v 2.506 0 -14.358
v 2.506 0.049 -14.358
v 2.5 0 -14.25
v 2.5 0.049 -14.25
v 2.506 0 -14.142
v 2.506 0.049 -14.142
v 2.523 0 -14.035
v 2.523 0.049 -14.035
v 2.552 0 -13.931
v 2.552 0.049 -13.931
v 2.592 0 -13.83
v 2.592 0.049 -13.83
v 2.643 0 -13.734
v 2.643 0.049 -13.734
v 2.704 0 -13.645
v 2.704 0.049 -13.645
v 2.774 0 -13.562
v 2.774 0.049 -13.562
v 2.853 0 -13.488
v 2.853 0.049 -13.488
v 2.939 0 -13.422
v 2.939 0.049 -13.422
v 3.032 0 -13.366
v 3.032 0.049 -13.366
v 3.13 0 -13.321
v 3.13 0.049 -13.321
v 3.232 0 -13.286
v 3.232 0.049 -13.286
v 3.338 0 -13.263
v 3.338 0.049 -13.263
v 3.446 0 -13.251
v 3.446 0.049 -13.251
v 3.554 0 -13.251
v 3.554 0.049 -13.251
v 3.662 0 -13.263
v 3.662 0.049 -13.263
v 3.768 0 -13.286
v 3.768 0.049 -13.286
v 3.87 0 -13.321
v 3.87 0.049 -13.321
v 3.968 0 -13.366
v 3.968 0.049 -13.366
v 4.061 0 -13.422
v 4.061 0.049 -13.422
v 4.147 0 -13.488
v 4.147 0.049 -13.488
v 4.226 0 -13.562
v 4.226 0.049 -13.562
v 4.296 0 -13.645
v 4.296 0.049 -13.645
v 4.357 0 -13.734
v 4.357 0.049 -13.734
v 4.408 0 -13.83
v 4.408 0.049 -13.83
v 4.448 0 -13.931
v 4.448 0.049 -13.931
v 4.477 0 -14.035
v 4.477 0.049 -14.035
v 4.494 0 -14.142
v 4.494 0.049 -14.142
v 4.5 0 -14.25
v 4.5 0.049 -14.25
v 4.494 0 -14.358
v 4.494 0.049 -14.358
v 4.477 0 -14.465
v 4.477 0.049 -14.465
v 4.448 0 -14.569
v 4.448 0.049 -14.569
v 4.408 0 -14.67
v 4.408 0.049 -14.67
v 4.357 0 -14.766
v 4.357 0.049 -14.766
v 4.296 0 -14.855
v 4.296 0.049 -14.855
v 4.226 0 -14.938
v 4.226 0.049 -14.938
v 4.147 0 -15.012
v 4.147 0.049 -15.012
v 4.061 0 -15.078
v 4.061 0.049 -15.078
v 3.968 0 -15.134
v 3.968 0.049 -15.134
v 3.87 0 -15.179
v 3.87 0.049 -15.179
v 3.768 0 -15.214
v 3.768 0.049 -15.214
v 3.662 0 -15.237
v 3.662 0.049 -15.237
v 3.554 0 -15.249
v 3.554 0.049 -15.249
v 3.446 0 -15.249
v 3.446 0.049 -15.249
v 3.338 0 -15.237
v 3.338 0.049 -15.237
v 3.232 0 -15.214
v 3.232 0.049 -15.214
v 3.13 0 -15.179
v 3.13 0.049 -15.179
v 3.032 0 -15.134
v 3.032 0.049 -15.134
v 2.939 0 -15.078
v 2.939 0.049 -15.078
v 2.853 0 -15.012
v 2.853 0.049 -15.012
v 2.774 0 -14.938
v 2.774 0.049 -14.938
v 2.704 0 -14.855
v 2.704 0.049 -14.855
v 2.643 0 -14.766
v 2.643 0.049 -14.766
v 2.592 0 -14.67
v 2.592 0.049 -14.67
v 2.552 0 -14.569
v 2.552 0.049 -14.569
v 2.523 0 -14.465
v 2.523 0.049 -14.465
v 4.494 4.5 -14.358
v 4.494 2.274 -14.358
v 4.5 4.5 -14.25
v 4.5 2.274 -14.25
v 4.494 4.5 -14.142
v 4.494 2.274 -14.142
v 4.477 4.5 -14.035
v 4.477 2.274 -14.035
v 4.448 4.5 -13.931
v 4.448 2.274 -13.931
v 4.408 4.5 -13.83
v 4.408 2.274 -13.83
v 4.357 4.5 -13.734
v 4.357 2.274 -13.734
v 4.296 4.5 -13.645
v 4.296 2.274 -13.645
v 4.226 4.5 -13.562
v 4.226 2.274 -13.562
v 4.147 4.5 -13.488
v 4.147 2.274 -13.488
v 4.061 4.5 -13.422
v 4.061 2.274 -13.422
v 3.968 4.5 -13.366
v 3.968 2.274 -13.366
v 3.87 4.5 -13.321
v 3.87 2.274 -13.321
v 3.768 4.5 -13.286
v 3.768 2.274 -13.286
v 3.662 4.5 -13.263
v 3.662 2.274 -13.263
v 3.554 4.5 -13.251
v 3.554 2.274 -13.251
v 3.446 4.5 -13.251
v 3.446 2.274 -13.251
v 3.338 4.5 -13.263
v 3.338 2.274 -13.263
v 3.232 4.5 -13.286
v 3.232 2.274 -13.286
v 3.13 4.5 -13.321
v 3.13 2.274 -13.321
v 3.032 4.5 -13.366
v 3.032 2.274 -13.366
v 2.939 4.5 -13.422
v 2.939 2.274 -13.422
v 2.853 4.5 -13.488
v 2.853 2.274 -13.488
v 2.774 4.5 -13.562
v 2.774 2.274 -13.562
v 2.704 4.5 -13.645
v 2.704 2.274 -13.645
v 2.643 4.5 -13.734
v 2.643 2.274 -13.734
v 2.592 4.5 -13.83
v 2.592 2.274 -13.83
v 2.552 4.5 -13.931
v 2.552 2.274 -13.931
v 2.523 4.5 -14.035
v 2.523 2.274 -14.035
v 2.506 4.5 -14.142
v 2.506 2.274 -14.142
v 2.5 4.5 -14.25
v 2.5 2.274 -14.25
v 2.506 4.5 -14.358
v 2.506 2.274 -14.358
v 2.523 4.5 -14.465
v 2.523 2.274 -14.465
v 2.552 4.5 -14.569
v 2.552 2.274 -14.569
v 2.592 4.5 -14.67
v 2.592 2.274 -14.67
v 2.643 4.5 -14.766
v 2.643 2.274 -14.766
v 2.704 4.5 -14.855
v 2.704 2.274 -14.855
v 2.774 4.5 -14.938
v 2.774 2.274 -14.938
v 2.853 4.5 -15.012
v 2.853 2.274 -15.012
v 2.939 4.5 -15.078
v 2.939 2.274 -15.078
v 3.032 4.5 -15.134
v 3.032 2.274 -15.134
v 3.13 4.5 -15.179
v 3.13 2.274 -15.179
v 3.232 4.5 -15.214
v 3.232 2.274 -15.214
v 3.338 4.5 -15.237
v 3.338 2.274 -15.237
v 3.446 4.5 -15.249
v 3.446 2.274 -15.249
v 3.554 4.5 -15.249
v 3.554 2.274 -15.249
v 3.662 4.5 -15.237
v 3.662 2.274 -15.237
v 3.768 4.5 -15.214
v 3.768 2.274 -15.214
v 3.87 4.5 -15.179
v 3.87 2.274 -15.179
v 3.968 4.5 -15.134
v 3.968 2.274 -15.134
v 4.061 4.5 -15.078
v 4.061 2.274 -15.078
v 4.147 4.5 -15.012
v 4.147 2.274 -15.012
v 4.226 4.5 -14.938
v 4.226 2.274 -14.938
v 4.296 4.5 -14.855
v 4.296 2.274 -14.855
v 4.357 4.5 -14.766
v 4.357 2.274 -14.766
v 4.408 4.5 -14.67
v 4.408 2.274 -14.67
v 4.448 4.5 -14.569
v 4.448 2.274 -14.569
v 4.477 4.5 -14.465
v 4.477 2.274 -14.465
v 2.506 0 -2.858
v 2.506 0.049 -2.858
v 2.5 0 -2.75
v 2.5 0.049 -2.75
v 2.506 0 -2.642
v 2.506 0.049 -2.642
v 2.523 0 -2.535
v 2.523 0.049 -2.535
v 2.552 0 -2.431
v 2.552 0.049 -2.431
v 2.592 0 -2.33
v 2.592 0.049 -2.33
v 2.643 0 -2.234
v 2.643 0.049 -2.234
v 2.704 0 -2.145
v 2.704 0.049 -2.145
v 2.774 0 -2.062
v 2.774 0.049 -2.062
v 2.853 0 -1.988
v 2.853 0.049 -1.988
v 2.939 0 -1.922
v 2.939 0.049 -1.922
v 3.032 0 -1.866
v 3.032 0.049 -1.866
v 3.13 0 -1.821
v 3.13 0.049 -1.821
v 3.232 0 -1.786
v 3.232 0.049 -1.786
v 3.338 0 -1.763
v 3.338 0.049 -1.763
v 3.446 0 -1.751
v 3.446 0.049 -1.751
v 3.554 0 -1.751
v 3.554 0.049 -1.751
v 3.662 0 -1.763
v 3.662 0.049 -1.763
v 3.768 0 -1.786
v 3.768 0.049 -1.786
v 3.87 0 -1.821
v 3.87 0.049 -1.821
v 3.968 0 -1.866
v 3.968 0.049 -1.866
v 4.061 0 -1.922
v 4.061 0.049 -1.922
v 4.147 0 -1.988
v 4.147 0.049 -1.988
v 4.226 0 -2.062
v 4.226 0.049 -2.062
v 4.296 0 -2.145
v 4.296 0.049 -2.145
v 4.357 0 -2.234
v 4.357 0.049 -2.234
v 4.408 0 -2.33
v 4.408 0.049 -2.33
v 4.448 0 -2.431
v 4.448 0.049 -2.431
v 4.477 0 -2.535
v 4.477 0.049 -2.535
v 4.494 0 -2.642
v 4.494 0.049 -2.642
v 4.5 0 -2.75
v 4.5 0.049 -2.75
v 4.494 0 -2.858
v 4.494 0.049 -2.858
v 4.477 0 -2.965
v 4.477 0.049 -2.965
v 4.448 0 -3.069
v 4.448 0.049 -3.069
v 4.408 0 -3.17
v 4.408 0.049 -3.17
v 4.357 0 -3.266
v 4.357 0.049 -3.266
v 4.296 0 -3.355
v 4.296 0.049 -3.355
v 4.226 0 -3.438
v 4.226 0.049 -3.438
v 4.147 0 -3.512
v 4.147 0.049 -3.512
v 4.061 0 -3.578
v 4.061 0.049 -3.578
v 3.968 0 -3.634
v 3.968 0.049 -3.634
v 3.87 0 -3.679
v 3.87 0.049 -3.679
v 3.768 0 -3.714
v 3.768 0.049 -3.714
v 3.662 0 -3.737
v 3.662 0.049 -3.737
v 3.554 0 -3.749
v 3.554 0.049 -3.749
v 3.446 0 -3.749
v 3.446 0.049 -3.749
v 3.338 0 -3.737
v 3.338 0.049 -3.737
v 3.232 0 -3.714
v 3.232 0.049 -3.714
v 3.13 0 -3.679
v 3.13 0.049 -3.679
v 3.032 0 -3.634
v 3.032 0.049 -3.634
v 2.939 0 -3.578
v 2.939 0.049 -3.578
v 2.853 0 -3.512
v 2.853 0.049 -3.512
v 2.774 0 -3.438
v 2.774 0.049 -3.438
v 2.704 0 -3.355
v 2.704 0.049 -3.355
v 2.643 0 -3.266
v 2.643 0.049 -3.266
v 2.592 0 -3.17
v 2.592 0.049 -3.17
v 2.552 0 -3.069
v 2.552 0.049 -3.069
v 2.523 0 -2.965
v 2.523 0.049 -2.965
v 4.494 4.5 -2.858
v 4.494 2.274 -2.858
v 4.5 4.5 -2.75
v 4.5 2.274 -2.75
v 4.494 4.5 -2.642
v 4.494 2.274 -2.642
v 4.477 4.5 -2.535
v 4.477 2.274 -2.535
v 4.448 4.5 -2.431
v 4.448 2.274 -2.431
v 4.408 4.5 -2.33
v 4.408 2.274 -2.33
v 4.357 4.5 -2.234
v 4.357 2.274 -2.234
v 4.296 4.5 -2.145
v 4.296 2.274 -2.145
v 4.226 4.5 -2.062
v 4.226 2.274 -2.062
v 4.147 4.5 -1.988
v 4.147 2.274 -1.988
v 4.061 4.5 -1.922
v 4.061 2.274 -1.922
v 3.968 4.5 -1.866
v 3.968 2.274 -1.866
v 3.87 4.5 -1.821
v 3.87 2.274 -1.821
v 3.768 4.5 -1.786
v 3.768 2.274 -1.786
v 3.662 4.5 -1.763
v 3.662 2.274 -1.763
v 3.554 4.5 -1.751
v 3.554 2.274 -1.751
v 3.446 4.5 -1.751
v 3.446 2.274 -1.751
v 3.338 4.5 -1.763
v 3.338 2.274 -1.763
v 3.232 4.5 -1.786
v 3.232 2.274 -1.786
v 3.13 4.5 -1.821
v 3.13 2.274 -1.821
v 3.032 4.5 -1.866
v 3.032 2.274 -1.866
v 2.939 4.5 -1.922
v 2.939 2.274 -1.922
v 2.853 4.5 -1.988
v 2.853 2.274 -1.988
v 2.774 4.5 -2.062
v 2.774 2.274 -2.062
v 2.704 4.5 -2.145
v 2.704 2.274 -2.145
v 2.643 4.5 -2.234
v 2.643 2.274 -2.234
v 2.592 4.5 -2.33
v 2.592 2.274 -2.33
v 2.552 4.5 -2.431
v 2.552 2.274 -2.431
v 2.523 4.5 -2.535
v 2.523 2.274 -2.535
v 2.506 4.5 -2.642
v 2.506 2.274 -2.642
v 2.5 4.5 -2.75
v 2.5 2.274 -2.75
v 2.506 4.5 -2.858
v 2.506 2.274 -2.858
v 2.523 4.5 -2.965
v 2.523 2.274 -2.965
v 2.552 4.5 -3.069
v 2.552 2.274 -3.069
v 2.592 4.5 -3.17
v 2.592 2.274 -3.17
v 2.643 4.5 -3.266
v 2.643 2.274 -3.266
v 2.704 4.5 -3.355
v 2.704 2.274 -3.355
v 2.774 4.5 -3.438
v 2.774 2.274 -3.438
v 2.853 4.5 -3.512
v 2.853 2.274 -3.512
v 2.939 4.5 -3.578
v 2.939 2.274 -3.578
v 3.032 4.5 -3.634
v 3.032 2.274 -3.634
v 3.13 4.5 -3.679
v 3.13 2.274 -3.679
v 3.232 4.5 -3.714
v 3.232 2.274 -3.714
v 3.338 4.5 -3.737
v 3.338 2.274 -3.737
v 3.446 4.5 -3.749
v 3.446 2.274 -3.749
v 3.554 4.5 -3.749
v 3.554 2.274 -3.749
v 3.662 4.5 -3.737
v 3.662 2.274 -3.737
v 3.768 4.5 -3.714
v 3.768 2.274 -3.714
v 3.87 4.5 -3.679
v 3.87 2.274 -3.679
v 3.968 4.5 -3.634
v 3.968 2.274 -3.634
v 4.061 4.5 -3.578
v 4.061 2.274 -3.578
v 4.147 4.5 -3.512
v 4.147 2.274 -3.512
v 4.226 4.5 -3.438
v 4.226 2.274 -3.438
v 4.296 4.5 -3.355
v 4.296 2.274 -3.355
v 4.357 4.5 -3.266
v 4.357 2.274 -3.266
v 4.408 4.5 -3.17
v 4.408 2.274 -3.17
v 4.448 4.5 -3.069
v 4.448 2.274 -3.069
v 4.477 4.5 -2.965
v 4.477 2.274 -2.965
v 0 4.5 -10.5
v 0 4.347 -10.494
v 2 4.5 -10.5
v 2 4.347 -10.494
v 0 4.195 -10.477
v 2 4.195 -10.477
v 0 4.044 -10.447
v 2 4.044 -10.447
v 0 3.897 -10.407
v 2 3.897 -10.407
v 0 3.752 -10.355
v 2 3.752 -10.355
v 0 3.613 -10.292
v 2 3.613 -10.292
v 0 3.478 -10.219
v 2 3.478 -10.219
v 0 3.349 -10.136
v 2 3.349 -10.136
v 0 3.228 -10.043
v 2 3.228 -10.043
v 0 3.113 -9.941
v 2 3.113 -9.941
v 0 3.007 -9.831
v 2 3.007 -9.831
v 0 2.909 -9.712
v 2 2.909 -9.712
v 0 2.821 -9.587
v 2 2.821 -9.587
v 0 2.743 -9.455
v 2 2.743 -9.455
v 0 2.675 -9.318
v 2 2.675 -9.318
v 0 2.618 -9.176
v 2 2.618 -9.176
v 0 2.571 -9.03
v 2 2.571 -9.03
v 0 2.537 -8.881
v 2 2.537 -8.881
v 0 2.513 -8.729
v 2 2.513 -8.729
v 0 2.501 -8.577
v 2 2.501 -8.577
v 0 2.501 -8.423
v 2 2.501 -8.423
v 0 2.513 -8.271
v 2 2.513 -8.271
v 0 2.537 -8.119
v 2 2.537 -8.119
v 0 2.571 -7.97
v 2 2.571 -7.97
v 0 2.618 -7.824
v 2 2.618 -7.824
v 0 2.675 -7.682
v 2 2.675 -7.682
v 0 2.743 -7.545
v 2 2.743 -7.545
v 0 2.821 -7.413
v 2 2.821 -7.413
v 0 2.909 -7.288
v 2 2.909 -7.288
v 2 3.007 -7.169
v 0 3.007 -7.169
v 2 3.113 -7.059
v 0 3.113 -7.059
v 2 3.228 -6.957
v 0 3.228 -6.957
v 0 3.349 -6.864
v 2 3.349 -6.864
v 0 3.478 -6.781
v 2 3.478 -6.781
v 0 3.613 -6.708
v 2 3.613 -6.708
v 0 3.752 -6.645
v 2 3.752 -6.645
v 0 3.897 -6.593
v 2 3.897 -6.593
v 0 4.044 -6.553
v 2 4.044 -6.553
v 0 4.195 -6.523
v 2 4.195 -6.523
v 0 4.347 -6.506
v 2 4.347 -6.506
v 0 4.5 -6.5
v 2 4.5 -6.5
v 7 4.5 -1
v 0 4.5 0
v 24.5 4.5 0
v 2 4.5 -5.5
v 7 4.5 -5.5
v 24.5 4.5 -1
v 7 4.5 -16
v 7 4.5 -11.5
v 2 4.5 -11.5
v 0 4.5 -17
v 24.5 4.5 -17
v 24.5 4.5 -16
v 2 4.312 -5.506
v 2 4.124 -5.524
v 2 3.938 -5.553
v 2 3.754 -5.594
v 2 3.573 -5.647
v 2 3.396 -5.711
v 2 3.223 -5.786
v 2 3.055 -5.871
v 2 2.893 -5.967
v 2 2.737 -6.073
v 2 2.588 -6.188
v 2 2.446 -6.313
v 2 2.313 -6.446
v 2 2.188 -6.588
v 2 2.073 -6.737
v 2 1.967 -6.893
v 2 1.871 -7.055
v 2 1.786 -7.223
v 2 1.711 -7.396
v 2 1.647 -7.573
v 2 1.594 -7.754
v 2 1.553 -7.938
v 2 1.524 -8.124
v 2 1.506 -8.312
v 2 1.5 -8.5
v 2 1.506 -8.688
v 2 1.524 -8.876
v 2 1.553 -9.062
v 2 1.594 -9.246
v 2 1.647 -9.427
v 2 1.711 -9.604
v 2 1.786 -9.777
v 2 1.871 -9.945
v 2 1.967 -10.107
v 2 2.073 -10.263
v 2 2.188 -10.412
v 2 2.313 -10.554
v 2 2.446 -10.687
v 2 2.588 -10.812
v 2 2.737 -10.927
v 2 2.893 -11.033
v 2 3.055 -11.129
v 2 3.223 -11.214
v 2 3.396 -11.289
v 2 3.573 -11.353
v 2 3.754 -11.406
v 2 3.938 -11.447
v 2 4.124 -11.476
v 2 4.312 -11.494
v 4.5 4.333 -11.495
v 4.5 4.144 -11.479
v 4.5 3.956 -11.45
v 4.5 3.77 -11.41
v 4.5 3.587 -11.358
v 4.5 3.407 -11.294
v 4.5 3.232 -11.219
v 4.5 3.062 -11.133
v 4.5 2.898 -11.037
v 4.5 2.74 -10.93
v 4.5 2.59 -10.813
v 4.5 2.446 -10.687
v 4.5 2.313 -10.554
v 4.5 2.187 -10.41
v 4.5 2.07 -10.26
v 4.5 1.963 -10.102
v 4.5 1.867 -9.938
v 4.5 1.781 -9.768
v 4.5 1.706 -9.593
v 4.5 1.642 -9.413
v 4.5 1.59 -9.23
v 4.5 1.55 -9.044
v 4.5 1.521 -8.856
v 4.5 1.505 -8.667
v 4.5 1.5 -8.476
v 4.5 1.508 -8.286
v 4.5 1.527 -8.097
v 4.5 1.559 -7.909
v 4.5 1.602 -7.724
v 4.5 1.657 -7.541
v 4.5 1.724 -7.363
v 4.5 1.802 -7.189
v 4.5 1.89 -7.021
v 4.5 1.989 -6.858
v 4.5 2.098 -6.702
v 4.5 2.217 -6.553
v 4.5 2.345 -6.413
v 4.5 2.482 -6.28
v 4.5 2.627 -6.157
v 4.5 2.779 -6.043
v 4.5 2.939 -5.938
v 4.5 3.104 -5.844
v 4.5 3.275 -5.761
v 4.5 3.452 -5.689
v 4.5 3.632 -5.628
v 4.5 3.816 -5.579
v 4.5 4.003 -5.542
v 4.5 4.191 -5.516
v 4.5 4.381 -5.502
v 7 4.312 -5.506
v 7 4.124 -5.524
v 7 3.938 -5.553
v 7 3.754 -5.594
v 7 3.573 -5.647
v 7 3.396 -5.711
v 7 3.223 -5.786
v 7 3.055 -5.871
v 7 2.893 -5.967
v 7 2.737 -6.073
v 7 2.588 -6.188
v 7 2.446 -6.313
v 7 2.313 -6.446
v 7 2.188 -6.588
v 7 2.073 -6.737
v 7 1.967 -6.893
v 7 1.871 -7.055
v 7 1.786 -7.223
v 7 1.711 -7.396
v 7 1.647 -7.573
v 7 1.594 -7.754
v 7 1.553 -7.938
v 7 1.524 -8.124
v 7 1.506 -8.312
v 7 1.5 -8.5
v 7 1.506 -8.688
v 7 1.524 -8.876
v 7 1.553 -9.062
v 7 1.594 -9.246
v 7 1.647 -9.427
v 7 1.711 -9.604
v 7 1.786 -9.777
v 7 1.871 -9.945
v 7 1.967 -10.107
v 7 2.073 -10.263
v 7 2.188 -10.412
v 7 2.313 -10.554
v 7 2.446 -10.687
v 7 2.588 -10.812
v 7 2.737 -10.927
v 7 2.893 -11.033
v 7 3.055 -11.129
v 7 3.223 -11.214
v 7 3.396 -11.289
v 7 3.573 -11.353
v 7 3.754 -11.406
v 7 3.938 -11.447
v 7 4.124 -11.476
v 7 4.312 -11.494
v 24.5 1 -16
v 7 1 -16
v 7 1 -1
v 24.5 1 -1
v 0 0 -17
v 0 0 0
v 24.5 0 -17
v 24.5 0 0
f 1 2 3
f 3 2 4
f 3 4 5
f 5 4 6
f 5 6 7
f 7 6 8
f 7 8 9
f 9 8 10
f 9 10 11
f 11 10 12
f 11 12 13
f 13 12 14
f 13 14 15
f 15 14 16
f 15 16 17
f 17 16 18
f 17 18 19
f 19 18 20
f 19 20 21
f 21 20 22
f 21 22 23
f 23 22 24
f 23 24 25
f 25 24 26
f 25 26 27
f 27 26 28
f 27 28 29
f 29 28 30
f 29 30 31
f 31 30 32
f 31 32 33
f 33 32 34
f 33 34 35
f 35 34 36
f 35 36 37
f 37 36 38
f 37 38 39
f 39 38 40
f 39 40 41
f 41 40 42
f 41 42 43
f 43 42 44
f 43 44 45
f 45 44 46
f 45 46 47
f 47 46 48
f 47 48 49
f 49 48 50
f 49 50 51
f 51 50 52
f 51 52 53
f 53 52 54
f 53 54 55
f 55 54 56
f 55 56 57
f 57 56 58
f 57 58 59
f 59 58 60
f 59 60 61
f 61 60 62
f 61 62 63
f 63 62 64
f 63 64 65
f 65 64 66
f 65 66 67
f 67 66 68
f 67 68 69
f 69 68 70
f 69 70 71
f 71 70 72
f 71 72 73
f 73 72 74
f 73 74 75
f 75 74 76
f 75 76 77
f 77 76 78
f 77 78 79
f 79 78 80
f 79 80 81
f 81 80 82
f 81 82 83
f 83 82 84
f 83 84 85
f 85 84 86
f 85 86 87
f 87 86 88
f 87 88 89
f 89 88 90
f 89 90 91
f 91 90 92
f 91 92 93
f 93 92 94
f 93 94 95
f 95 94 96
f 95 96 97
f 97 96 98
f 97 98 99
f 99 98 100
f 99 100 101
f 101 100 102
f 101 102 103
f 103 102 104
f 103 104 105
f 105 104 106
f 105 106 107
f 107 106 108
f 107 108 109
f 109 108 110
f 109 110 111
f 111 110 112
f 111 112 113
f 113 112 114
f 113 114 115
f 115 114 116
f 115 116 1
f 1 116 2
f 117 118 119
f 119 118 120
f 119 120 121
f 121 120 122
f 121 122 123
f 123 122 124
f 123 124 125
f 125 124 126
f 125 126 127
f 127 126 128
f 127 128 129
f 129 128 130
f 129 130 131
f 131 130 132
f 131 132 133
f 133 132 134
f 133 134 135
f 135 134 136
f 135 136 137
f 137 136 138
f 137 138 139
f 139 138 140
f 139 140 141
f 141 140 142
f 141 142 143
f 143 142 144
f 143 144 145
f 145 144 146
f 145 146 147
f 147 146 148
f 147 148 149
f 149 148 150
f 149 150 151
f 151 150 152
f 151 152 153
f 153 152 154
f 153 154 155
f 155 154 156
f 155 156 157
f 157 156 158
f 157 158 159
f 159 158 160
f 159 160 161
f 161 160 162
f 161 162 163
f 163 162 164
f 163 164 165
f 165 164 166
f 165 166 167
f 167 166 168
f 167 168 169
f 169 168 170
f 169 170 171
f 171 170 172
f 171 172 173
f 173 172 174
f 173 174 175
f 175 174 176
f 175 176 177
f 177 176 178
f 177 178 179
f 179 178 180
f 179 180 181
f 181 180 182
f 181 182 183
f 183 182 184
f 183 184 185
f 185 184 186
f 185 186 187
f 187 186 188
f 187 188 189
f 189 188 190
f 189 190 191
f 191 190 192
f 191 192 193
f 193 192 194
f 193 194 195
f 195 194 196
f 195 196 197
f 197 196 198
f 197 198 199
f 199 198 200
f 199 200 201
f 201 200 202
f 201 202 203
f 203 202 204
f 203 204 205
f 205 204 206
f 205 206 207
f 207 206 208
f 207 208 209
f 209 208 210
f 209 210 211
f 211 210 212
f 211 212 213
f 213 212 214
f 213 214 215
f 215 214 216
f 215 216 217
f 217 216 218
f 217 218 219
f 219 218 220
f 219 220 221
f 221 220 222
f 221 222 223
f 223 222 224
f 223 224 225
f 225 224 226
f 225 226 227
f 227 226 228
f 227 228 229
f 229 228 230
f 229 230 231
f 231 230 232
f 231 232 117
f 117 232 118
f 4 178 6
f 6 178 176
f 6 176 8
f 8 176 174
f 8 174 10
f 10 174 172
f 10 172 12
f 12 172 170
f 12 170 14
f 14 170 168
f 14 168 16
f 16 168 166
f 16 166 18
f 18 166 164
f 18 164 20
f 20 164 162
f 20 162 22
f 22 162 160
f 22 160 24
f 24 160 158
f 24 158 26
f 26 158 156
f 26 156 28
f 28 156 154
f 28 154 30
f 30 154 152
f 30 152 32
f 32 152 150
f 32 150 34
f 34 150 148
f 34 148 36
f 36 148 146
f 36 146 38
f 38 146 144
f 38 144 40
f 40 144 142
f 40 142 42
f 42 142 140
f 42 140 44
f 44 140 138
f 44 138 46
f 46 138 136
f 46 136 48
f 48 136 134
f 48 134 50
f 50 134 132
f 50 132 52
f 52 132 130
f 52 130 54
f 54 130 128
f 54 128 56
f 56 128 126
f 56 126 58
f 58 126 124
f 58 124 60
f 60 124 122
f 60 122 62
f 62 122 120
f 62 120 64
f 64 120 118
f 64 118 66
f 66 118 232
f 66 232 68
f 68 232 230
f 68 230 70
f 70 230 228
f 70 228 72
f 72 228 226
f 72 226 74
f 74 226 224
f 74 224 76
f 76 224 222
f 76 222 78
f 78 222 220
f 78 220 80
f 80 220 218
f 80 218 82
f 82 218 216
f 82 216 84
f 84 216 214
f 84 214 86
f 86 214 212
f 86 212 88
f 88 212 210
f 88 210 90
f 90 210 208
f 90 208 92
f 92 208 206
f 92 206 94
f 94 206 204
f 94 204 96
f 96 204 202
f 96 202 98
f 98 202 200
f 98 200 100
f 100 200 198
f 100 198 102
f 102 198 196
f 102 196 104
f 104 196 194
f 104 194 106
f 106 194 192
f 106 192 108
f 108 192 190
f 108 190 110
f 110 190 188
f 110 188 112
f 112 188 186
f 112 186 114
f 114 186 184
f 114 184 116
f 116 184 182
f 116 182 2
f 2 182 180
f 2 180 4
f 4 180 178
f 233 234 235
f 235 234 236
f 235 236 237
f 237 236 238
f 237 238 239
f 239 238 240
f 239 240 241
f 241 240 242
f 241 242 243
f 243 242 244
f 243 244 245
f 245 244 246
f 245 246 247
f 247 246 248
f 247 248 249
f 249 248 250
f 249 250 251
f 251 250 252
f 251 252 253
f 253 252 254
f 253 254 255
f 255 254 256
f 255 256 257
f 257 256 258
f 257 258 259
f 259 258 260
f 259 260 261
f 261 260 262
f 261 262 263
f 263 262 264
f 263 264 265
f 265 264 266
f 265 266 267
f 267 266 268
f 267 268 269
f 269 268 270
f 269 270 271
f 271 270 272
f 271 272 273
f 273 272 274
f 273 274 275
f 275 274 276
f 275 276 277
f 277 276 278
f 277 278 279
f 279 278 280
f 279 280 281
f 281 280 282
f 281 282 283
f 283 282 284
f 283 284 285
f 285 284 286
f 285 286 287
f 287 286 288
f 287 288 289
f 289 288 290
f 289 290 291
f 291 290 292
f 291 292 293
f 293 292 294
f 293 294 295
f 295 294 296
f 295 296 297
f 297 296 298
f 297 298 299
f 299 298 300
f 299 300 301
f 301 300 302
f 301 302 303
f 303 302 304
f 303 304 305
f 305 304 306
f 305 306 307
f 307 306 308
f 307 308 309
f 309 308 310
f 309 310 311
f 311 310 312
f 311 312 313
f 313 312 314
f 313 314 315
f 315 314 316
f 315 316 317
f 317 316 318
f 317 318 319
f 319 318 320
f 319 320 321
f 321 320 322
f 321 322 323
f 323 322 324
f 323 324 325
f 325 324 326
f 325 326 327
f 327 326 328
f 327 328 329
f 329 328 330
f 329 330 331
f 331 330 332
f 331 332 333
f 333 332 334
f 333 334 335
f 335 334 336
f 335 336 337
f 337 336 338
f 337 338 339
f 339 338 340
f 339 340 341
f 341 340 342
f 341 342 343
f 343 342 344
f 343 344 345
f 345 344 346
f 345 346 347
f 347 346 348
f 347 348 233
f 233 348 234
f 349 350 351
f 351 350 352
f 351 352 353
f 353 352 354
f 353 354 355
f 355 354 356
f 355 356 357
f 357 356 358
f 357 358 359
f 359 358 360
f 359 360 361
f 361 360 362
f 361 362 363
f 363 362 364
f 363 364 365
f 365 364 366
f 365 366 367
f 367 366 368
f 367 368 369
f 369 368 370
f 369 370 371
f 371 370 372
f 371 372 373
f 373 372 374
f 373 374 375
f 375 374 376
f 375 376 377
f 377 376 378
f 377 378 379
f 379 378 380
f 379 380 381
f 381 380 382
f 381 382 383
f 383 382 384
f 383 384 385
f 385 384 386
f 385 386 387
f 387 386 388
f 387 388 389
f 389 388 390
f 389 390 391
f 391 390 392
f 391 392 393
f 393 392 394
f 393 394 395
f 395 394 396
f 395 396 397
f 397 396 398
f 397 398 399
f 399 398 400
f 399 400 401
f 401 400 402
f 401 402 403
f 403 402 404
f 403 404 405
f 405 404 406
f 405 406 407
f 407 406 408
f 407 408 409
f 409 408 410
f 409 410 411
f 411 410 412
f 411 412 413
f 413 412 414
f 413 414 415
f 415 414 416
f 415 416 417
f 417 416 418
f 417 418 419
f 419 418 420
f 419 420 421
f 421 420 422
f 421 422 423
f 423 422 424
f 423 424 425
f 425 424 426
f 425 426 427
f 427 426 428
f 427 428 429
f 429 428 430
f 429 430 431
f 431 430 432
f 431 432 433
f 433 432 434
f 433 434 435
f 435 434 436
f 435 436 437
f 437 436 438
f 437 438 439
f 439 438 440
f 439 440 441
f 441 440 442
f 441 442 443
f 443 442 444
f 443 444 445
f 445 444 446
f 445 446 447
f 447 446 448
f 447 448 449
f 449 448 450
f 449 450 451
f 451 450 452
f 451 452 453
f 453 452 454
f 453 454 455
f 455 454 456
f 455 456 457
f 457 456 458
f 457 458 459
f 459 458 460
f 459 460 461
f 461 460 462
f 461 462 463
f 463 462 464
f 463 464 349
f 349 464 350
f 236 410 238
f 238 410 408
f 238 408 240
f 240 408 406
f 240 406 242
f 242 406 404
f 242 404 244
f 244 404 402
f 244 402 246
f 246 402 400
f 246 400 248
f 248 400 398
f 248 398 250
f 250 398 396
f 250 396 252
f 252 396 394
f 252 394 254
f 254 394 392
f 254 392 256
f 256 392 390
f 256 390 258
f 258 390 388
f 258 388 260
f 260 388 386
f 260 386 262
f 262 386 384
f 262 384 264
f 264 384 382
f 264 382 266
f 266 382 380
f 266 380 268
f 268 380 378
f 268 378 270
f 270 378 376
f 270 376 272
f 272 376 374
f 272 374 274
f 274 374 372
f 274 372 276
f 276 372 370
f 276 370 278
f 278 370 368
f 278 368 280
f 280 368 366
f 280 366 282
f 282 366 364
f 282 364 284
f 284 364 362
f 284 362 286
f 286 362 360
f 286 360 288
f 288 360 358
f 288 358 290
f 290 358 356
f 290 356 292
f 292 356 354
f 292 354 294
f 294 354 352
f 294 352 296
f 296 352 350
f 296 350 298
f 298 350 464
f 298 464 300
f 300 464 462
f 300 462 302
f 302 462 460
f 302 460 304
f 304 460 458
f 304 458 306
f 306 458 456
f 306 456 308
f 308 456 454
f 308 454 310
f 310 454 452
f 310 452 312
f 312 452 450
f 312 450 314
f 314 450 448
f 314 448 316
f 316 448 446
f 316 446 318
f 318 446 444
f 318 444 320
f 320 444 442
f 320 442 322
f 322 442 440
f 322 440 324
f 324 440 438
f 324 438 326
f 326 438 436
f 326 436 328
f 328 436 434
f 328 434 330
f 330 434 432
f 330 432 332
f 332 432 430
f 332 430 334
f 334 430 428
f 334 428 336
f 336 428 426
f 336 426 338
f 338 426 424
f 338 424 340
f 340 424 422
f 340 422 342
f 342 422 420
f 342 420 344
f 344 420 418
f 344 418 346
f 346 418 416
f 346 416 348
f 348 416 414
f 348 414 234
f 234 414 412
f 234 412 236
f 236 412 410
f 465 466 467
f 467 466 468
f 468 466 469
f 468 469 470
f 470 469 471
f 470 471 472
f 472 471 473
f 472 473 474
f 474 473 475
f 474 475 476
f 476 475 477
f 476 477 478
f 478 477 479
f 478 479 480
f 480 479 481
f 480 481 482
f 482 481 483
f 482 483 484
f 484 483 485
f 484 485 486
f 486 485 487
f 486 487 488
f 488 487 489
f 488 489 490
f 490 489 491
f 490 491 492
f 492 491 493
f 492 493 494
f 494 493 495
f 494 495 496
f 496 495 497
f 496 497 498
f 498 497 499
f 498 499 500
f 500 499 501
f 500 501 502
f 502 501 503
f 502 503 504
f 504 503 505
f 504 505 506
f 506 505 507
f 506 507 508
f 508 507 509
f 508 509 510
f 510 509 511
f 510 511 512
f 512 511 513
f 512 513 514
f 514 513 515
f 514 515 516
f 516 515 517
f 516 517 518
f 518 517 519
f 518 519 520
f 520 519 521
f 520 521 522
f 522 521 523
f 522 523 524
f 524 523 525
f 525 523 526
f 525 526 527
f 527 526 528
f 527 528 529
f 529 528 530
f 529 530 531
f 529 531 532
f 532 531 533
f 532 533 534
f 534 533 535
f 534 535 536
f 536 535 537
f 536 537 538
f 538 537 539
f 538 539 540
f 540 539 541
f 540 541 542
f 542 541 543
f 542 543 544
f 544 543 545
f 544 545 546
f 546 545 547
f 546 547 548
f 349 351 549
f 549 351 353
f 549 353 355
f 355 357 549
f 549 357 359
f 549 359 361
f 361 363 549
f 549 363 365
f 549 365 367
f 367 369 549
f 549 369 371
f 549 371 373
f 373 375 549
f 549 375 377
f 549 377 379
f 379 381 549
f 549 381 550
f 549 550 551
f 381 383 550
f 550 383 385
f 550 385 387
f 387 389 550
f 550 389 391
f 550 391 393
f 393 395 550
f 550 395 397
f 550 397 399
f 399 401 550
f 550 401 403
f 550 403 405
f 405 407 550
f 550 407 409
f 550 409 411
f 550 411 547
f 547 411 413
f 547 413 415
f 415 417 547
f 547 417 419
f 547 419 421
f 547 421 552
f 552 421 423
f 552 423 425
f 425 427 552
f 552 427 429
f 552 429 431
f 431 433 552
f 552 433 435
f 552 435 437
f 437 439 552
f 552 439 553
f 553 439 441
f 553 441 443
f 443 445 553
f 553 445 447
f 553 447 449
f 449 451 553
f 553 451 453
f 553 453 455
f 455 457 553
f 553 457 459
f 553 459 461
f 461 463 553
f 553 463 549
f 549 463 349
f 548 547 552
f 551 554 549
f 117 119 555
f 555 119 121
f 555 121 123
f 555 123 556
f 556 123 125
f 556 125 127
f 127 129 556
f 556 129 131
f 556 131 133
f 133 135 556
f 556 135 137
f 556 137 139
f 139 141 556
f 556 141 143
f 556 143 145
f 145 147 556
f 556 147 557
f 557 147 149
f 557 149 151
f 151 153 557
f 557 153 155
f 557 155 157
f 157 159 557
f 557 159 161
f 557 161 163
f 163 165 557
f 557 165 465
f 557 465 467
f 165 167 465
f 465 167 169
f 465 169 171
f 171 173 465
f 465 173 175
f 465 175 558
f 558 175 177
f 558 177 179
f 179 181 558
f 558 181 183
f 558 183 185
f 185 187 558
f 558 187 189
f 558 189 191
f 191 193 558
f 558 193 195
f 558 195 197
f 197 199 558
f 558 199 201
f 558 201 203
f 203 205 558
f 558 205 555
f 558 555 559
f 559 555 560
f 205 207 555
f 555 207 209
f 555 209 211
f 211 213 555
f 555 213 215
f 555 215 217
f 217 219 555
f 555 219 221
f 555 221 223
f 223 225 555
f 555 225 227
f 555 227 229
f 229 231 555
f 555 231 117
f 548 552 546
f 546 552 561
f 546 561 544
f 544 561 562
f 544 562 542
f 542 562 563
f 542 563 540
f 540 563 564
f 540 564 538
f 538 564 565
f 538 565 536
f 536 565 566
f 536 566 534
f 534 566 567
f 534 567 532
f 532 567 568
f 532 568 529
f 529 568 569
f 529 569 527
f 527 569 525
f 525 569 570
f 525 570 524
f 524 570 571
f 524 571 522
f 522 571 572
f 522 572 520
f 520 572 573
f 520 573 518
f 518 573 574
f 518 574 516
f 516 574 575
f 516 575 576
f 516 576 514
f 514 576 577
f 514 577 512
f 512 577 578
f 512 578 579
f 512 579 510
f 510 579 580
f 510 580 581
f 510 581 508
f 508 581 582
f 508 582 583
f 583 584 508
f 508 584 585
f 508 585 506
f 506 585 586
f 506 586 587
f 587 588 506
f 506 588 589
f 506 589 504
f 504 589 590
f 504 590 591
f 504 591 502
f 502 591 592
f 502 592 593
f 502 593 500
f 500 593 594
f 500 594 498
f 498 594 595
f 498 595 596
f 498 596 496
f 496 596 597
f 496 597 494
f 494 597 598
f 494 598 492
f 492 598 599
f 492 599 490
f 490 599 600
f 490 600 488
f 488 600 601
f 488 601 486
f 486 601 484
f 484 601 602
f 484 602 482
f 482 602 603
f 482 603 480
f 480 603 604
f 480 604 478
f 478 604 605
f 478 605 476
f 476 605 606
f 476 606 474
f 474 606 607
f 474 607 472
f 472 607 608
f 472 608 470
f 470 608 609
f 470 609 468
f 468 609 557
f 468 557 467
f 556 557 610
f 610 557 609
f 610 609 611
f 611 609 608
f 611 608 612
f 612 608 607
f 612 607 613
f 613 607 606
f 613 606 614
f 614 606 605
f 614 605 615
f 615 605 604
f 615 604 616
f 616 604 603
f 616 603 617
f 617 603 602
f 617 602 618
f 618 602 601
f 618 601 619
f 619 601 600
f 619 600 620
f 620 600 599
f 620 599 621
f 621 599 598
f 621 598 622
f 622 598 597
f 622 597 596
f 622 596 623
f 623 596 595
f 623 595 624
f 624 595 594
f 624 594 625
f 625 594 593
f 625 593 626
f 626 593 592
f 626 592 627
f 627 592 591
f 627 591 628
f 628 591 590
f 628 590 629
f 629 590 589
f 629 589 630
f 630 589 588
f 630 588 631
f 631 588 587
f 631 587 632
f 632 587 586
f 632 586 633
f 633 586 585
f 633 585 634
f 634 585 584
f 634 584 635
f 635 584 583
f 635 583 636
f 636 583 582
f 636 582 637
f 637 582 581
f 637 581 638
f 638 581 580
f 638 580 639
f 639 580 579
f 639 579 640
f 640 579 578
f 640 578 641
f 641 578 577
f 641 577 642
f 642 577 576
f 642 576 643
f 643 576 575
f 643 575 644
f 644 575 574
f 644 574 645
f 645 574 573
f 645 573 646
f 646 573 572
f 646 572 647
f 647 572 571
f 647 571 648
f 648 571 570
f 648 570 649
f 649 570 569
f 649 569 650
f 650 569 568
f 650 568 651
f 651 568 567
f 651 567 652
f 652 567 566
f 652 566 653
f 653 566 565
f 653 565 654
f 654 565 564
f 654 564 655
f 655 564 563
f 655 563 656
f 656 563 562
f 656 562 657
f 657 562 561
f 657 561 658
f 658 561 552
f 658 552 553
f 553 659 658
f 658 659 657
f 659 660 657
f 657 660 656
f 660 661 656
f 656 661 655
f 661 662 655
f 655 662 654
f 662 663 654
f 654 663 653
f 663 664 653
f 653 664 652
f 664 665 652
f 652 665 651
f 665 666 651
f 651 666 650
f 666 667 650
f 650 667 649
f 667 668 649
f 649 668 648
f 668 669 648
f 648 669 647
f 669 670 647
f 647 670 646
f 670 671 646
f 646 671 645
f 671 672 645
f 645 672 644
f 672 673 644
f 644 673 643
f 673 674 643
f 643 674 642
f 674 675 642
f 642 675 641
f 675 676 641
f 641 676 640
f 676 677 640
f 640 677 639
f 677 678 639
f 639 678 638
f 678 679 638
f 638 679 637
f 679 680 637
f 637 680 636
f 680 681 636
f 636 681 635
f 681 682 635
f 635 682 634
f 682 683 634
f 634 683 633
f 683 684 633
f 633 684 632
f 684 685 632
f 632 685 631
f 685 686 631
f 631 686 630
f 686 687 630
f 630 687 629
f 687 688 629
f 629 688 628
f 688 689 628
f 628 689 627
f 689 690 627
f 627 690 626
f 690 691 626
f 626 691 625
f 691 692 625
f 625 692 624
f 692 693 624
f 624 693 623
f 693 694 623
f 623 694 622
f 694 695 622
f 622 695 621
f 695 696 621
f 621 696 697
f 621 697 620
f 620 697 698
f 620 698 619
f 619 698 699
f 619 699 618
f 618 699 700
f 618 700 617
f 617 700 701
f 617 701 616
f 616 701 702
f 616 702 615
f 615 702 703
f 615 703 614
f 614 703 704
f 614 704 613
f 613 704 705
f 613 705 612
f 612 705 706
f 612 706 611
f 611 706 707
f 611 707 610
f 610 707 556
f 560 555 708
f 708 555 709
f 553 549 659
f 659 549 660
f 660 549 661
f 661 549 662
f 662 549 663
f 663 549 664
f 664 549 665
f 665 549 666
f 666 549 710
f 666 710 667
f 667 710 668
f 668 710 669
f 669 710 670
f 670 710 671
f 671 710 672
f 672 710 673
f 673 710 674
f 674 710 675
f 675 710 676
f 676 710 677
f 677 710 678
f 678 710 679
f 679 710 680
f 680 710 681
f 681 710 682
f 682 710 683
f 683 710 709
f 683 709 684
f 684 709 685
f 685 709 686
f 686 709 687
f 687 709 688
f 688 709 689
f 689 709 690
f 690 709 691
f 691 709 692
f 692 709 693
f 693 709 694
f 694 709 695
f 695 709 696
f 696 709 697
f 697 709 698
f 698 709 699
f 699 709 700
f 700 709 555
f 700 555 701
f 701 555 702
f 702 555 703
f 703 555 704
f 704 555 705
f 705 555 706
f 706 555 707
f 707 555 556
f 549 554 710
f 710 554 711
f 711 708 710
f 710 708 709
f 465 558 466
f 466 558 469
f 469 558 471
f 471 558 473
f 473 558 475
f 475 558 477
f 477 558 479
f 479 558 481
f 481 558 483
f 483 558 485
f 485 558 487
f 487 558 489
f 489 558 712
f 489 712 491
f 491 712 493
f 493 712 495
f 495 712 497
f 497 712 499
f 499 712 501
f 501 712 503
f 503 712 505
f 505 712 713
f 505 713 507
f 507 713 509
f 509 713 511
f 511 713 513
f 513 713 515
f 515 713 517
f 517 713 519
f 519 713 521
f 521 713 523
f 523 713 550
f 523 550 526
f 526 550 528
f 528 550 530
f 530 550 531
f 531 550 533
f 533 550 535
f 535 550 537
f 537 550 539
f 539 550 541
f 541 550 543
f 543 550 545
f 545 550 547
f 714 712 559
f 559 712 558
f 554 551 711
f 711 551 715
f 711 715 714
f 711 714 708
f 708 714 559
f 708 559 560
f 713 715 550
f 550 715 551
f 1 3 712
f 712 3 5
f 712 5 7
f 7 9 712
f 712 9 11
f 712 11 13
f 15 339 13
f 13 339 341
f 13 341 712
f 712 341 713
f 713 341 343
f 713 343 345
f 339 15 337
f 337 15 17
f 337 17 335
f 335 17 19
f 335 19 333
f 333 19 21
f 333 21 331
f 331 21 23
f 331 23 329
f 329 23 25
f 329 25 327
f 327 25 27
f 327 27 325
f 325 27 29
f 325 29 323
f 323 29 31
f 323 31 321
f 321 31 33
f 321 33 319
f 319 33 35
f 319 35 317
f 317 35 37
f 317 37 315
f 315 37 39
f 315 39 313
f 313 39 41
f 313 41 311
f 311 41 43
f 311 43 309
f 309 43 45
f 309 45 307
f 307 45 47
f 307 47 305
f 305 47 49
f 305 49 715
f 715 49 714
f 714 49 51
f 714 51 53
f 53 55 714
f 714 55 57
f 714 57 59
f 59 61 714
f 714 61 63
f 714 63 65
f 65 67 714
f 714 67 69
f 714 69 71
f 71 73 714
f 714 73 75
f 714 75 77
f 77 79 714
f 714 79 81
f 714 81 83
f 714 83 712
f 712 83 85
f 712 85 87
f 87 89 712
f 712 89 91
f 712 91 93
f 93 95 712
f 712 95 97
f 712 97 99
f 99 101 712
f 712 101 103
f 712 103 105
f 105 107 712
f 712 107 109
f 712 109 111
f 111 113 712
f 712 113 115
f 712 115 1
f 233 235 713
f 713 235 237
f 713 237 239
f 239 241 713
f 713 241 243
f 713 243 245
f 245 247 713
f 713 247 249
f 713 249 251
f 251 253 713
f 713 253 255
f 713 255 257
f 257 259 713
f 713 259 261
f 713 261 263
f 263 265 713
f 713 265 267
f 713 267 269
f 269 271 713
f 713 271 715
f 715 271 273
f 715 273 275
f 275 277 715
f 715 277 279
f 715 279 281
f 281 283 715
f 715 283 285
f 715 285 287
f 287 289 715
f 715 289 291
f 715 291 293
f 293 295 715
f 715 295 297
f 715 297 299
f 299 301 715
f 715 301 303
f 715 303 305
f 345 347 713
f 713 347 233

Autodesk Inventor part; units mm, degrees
ref_plane "YZ Plane" through (0, 0, 0) normal (1, 0, 0) x (0, 1, 0)
ref_plane "XZ Plane" through (0, 0, 0) normal (0, 1, 0) x (-1, 0, 0)
ref_plane "XY Plane" through (0, 0, 0) normal (0, 0, 1) x (1, 0, 0)
sketch "Эскиз24" plane through (0, 0, 0) normal (0, 1, 0) x (1, 0, 0)
  line L0 (0, 0) -> (24.5, 0)
  line L1 (24.5, 0) -> (24.5, 17)
  line L2 (24.5, 17) -> (0, 17)
  line L3 (0, 17) -> (0, 0)
  dimension "d124" = 24.5
  dimension "d125" = 17
extrude "Выдавливание17" add sketch "Эскиз24" along normal blind 4.5
sketch "Эскиз25" plane through (0, 4.5, 0) normal (0, 1, 0) x (1, 0, 0)
  line L0 (24.5, 1) -> (7, 1)
  line L1 (7, 1) -> (7, 16)
  line L2 (7, 16) -> (24.5, 16)
  line L3 (24.5, 16) -> (24.5, 1)
  line L4 (24.5, 0) -> (24.5, 17) projected
  line L5 (0, 17) -> (0, 0) projected
  point P0 (24.5, 8.5)
  dimension "d128" = 15
  dimension "d129" = 17.5
extrude "Выдавливание18" cut sketch "Эскиз25" against normal blind 3.5
sketch "Эскиз26" plane through (0, 4.5, 0) normal (0, 1, 0) x (1, 0, 0)
  line L0 (7, 1) -> (7, 16) projected
  line L1 (2, 5.5) -> (7, 5.5)
  line L2 (7, 5.5) -> (7, 11.5)
  line L3 (7, 11.5) -> (2, 11.5)
  line L4 (2, 11.5) -> (2, 5.5)
  line L5 (7, 1) -> (7, 16) projected
  point P0 (0, 0)
  point P1 (7, 8.5)
  dimension "d133" = 5
  dimension "d134" = 6
extrude "Выдавливание19" cut sketch "Эскиз26" against normal blind 3
fillet "Сопряжение8" radius 3 2 edges at (4.5, 1.5, -11.5) (4.5, 1.5, -5.5)
sketch "Эскиз27" plane through (0, 4.5, 0) normal (0, 1, 0) x (1, 0, 0)
  line L0 (0, 6.5) -> (2, 6.5)
  line L1 (2, 6.5) -> (2, 10.5)
  line L2 (2, 10.5) -> (0, 10.5)
  line L3 (0, 10.5) -> (0, 6.5)
  line L4 (2, 5.5) -> (2, 11.5) projected
  line L5 (0, 17) -> (0, 0) projected
  point P0 (2, 8.5)
  dimension "d138" = 4
extrude "Выдавливание20" cut sketch "Эскиз27" against normal blind 2
fillet "Сопряжение9" radius 2 2 edges at (1, 2.5, -10.5) (1, 2.5, -6.5)
sketch "Эскиз28" plane through (0, 4.5, 0) normal (0, 1, 0) x (1, 0, 0)
  line L0 (2, 11.5) -> (7, 11.5) projected
  line L1 (0, 17) -> (0, 0) projected
  line L2 (7, 11.5) -> (0, 11.5)
  line L3 (0, 11.5) -> (0, 17)
  line L4 (0, 17) -> (7, 17)
  line L5 (7, 17) -> (7, 11.5)
  line L6 (7, 5.5) -> (2, 5.5) projected
  line L7 (7, 5.5) -> (0, 5.5)
  line L8 (0, 5.5) -> (0, 0)
  line L9 (0, 0) -> (7, 0)
  line L10 (7, 0) -> (7, 5.5)
  line L11 (24.5, 17) -> (0, 17) construction
  line L12 (0, 17) -> (7, 11.5) construction
  line L13 (0, 0) -> (7, 5.5) construction
  point P0 (3.5, 14.25)
  point P1 (3.5, 2.75)
hole "Отверстие6" at (3.5, 4.5, -14.25) at (3.5, 4.5, -2.75) direction (0, -1, 0) diameter 2 depth 4.5
sketch "Эскиз21" plane through (20, 0, 0.1742) normal (1, 0, 0) x (0, 0, -1)
  line L0 (0.1742, 0) -> (-5.0258, 0) projected
  line L1 (0.1742, 0) -> (0.1742, 25) projected
  line L2 (-5.0258, 0) -> (-8.7758, -17.85)
  line L3 (0.1742, 0) -> (-3.5758, -17.85)
  line L4 (-8.7758, -17.85) -> (-3.5758, -17.85)
  dimension "d103" = 17.85
  dimension "d104" = 8.95
sketch "Эскиз22" plane through (20, -17.85, 3.75) normal (0, -1, 0) x (1, 0, 0)
  line L0 (0, 0) -> (-9.1, 0)
  line L1 (-9.1, 0) -> (-9.1, 17.3)
  line L2 (-9.1, 17.3) -> (0, 17.3)
  line L3 (0, 17.3) -> (0, 0)
  line L4 (0, 5.2) -> (-9.1, 5.2) projected
  line L5 (0, 0) -> (-9.1, 0) projected
  line L6 (0, 5.2) -> (0, 0) projected
  line L7 (0, 0) -> (-9.1, 0) projected
  line L8 (-9.1, 0) -> (-9.1, 5.2) projected
  line L9 (0, 5.2) -> (-9.1, 5.2) projected
  point P0 (-20, -3.75)
  point P1 (0, -7.9181)
  point P2 (-9.1, -7.9181)
  point P3 (-9.1, 0)
  point P4 (-9.1, -7.9181)
  point P5 (0, -7.9181)
  point P6 (0, 0)
  point P7 (0, 4.1819)
  point P8 (-9.1, 4.1819)
  dimension "d122" = 12.1
sketch "Эскиз23" plane through (40.15, -13.85, 3.75) normal (0, 1, 0) x (1, 0, 0)
  line L0 (-9.1, -17.3) -> (0, -17.3) projected
  line L1 (-4.55, -17.3) -> (-4.55, -12.6)
  point P0 (-40.15, 3.75)
  dimension "d118" = 4.7
properties part number "Крепление USB"
